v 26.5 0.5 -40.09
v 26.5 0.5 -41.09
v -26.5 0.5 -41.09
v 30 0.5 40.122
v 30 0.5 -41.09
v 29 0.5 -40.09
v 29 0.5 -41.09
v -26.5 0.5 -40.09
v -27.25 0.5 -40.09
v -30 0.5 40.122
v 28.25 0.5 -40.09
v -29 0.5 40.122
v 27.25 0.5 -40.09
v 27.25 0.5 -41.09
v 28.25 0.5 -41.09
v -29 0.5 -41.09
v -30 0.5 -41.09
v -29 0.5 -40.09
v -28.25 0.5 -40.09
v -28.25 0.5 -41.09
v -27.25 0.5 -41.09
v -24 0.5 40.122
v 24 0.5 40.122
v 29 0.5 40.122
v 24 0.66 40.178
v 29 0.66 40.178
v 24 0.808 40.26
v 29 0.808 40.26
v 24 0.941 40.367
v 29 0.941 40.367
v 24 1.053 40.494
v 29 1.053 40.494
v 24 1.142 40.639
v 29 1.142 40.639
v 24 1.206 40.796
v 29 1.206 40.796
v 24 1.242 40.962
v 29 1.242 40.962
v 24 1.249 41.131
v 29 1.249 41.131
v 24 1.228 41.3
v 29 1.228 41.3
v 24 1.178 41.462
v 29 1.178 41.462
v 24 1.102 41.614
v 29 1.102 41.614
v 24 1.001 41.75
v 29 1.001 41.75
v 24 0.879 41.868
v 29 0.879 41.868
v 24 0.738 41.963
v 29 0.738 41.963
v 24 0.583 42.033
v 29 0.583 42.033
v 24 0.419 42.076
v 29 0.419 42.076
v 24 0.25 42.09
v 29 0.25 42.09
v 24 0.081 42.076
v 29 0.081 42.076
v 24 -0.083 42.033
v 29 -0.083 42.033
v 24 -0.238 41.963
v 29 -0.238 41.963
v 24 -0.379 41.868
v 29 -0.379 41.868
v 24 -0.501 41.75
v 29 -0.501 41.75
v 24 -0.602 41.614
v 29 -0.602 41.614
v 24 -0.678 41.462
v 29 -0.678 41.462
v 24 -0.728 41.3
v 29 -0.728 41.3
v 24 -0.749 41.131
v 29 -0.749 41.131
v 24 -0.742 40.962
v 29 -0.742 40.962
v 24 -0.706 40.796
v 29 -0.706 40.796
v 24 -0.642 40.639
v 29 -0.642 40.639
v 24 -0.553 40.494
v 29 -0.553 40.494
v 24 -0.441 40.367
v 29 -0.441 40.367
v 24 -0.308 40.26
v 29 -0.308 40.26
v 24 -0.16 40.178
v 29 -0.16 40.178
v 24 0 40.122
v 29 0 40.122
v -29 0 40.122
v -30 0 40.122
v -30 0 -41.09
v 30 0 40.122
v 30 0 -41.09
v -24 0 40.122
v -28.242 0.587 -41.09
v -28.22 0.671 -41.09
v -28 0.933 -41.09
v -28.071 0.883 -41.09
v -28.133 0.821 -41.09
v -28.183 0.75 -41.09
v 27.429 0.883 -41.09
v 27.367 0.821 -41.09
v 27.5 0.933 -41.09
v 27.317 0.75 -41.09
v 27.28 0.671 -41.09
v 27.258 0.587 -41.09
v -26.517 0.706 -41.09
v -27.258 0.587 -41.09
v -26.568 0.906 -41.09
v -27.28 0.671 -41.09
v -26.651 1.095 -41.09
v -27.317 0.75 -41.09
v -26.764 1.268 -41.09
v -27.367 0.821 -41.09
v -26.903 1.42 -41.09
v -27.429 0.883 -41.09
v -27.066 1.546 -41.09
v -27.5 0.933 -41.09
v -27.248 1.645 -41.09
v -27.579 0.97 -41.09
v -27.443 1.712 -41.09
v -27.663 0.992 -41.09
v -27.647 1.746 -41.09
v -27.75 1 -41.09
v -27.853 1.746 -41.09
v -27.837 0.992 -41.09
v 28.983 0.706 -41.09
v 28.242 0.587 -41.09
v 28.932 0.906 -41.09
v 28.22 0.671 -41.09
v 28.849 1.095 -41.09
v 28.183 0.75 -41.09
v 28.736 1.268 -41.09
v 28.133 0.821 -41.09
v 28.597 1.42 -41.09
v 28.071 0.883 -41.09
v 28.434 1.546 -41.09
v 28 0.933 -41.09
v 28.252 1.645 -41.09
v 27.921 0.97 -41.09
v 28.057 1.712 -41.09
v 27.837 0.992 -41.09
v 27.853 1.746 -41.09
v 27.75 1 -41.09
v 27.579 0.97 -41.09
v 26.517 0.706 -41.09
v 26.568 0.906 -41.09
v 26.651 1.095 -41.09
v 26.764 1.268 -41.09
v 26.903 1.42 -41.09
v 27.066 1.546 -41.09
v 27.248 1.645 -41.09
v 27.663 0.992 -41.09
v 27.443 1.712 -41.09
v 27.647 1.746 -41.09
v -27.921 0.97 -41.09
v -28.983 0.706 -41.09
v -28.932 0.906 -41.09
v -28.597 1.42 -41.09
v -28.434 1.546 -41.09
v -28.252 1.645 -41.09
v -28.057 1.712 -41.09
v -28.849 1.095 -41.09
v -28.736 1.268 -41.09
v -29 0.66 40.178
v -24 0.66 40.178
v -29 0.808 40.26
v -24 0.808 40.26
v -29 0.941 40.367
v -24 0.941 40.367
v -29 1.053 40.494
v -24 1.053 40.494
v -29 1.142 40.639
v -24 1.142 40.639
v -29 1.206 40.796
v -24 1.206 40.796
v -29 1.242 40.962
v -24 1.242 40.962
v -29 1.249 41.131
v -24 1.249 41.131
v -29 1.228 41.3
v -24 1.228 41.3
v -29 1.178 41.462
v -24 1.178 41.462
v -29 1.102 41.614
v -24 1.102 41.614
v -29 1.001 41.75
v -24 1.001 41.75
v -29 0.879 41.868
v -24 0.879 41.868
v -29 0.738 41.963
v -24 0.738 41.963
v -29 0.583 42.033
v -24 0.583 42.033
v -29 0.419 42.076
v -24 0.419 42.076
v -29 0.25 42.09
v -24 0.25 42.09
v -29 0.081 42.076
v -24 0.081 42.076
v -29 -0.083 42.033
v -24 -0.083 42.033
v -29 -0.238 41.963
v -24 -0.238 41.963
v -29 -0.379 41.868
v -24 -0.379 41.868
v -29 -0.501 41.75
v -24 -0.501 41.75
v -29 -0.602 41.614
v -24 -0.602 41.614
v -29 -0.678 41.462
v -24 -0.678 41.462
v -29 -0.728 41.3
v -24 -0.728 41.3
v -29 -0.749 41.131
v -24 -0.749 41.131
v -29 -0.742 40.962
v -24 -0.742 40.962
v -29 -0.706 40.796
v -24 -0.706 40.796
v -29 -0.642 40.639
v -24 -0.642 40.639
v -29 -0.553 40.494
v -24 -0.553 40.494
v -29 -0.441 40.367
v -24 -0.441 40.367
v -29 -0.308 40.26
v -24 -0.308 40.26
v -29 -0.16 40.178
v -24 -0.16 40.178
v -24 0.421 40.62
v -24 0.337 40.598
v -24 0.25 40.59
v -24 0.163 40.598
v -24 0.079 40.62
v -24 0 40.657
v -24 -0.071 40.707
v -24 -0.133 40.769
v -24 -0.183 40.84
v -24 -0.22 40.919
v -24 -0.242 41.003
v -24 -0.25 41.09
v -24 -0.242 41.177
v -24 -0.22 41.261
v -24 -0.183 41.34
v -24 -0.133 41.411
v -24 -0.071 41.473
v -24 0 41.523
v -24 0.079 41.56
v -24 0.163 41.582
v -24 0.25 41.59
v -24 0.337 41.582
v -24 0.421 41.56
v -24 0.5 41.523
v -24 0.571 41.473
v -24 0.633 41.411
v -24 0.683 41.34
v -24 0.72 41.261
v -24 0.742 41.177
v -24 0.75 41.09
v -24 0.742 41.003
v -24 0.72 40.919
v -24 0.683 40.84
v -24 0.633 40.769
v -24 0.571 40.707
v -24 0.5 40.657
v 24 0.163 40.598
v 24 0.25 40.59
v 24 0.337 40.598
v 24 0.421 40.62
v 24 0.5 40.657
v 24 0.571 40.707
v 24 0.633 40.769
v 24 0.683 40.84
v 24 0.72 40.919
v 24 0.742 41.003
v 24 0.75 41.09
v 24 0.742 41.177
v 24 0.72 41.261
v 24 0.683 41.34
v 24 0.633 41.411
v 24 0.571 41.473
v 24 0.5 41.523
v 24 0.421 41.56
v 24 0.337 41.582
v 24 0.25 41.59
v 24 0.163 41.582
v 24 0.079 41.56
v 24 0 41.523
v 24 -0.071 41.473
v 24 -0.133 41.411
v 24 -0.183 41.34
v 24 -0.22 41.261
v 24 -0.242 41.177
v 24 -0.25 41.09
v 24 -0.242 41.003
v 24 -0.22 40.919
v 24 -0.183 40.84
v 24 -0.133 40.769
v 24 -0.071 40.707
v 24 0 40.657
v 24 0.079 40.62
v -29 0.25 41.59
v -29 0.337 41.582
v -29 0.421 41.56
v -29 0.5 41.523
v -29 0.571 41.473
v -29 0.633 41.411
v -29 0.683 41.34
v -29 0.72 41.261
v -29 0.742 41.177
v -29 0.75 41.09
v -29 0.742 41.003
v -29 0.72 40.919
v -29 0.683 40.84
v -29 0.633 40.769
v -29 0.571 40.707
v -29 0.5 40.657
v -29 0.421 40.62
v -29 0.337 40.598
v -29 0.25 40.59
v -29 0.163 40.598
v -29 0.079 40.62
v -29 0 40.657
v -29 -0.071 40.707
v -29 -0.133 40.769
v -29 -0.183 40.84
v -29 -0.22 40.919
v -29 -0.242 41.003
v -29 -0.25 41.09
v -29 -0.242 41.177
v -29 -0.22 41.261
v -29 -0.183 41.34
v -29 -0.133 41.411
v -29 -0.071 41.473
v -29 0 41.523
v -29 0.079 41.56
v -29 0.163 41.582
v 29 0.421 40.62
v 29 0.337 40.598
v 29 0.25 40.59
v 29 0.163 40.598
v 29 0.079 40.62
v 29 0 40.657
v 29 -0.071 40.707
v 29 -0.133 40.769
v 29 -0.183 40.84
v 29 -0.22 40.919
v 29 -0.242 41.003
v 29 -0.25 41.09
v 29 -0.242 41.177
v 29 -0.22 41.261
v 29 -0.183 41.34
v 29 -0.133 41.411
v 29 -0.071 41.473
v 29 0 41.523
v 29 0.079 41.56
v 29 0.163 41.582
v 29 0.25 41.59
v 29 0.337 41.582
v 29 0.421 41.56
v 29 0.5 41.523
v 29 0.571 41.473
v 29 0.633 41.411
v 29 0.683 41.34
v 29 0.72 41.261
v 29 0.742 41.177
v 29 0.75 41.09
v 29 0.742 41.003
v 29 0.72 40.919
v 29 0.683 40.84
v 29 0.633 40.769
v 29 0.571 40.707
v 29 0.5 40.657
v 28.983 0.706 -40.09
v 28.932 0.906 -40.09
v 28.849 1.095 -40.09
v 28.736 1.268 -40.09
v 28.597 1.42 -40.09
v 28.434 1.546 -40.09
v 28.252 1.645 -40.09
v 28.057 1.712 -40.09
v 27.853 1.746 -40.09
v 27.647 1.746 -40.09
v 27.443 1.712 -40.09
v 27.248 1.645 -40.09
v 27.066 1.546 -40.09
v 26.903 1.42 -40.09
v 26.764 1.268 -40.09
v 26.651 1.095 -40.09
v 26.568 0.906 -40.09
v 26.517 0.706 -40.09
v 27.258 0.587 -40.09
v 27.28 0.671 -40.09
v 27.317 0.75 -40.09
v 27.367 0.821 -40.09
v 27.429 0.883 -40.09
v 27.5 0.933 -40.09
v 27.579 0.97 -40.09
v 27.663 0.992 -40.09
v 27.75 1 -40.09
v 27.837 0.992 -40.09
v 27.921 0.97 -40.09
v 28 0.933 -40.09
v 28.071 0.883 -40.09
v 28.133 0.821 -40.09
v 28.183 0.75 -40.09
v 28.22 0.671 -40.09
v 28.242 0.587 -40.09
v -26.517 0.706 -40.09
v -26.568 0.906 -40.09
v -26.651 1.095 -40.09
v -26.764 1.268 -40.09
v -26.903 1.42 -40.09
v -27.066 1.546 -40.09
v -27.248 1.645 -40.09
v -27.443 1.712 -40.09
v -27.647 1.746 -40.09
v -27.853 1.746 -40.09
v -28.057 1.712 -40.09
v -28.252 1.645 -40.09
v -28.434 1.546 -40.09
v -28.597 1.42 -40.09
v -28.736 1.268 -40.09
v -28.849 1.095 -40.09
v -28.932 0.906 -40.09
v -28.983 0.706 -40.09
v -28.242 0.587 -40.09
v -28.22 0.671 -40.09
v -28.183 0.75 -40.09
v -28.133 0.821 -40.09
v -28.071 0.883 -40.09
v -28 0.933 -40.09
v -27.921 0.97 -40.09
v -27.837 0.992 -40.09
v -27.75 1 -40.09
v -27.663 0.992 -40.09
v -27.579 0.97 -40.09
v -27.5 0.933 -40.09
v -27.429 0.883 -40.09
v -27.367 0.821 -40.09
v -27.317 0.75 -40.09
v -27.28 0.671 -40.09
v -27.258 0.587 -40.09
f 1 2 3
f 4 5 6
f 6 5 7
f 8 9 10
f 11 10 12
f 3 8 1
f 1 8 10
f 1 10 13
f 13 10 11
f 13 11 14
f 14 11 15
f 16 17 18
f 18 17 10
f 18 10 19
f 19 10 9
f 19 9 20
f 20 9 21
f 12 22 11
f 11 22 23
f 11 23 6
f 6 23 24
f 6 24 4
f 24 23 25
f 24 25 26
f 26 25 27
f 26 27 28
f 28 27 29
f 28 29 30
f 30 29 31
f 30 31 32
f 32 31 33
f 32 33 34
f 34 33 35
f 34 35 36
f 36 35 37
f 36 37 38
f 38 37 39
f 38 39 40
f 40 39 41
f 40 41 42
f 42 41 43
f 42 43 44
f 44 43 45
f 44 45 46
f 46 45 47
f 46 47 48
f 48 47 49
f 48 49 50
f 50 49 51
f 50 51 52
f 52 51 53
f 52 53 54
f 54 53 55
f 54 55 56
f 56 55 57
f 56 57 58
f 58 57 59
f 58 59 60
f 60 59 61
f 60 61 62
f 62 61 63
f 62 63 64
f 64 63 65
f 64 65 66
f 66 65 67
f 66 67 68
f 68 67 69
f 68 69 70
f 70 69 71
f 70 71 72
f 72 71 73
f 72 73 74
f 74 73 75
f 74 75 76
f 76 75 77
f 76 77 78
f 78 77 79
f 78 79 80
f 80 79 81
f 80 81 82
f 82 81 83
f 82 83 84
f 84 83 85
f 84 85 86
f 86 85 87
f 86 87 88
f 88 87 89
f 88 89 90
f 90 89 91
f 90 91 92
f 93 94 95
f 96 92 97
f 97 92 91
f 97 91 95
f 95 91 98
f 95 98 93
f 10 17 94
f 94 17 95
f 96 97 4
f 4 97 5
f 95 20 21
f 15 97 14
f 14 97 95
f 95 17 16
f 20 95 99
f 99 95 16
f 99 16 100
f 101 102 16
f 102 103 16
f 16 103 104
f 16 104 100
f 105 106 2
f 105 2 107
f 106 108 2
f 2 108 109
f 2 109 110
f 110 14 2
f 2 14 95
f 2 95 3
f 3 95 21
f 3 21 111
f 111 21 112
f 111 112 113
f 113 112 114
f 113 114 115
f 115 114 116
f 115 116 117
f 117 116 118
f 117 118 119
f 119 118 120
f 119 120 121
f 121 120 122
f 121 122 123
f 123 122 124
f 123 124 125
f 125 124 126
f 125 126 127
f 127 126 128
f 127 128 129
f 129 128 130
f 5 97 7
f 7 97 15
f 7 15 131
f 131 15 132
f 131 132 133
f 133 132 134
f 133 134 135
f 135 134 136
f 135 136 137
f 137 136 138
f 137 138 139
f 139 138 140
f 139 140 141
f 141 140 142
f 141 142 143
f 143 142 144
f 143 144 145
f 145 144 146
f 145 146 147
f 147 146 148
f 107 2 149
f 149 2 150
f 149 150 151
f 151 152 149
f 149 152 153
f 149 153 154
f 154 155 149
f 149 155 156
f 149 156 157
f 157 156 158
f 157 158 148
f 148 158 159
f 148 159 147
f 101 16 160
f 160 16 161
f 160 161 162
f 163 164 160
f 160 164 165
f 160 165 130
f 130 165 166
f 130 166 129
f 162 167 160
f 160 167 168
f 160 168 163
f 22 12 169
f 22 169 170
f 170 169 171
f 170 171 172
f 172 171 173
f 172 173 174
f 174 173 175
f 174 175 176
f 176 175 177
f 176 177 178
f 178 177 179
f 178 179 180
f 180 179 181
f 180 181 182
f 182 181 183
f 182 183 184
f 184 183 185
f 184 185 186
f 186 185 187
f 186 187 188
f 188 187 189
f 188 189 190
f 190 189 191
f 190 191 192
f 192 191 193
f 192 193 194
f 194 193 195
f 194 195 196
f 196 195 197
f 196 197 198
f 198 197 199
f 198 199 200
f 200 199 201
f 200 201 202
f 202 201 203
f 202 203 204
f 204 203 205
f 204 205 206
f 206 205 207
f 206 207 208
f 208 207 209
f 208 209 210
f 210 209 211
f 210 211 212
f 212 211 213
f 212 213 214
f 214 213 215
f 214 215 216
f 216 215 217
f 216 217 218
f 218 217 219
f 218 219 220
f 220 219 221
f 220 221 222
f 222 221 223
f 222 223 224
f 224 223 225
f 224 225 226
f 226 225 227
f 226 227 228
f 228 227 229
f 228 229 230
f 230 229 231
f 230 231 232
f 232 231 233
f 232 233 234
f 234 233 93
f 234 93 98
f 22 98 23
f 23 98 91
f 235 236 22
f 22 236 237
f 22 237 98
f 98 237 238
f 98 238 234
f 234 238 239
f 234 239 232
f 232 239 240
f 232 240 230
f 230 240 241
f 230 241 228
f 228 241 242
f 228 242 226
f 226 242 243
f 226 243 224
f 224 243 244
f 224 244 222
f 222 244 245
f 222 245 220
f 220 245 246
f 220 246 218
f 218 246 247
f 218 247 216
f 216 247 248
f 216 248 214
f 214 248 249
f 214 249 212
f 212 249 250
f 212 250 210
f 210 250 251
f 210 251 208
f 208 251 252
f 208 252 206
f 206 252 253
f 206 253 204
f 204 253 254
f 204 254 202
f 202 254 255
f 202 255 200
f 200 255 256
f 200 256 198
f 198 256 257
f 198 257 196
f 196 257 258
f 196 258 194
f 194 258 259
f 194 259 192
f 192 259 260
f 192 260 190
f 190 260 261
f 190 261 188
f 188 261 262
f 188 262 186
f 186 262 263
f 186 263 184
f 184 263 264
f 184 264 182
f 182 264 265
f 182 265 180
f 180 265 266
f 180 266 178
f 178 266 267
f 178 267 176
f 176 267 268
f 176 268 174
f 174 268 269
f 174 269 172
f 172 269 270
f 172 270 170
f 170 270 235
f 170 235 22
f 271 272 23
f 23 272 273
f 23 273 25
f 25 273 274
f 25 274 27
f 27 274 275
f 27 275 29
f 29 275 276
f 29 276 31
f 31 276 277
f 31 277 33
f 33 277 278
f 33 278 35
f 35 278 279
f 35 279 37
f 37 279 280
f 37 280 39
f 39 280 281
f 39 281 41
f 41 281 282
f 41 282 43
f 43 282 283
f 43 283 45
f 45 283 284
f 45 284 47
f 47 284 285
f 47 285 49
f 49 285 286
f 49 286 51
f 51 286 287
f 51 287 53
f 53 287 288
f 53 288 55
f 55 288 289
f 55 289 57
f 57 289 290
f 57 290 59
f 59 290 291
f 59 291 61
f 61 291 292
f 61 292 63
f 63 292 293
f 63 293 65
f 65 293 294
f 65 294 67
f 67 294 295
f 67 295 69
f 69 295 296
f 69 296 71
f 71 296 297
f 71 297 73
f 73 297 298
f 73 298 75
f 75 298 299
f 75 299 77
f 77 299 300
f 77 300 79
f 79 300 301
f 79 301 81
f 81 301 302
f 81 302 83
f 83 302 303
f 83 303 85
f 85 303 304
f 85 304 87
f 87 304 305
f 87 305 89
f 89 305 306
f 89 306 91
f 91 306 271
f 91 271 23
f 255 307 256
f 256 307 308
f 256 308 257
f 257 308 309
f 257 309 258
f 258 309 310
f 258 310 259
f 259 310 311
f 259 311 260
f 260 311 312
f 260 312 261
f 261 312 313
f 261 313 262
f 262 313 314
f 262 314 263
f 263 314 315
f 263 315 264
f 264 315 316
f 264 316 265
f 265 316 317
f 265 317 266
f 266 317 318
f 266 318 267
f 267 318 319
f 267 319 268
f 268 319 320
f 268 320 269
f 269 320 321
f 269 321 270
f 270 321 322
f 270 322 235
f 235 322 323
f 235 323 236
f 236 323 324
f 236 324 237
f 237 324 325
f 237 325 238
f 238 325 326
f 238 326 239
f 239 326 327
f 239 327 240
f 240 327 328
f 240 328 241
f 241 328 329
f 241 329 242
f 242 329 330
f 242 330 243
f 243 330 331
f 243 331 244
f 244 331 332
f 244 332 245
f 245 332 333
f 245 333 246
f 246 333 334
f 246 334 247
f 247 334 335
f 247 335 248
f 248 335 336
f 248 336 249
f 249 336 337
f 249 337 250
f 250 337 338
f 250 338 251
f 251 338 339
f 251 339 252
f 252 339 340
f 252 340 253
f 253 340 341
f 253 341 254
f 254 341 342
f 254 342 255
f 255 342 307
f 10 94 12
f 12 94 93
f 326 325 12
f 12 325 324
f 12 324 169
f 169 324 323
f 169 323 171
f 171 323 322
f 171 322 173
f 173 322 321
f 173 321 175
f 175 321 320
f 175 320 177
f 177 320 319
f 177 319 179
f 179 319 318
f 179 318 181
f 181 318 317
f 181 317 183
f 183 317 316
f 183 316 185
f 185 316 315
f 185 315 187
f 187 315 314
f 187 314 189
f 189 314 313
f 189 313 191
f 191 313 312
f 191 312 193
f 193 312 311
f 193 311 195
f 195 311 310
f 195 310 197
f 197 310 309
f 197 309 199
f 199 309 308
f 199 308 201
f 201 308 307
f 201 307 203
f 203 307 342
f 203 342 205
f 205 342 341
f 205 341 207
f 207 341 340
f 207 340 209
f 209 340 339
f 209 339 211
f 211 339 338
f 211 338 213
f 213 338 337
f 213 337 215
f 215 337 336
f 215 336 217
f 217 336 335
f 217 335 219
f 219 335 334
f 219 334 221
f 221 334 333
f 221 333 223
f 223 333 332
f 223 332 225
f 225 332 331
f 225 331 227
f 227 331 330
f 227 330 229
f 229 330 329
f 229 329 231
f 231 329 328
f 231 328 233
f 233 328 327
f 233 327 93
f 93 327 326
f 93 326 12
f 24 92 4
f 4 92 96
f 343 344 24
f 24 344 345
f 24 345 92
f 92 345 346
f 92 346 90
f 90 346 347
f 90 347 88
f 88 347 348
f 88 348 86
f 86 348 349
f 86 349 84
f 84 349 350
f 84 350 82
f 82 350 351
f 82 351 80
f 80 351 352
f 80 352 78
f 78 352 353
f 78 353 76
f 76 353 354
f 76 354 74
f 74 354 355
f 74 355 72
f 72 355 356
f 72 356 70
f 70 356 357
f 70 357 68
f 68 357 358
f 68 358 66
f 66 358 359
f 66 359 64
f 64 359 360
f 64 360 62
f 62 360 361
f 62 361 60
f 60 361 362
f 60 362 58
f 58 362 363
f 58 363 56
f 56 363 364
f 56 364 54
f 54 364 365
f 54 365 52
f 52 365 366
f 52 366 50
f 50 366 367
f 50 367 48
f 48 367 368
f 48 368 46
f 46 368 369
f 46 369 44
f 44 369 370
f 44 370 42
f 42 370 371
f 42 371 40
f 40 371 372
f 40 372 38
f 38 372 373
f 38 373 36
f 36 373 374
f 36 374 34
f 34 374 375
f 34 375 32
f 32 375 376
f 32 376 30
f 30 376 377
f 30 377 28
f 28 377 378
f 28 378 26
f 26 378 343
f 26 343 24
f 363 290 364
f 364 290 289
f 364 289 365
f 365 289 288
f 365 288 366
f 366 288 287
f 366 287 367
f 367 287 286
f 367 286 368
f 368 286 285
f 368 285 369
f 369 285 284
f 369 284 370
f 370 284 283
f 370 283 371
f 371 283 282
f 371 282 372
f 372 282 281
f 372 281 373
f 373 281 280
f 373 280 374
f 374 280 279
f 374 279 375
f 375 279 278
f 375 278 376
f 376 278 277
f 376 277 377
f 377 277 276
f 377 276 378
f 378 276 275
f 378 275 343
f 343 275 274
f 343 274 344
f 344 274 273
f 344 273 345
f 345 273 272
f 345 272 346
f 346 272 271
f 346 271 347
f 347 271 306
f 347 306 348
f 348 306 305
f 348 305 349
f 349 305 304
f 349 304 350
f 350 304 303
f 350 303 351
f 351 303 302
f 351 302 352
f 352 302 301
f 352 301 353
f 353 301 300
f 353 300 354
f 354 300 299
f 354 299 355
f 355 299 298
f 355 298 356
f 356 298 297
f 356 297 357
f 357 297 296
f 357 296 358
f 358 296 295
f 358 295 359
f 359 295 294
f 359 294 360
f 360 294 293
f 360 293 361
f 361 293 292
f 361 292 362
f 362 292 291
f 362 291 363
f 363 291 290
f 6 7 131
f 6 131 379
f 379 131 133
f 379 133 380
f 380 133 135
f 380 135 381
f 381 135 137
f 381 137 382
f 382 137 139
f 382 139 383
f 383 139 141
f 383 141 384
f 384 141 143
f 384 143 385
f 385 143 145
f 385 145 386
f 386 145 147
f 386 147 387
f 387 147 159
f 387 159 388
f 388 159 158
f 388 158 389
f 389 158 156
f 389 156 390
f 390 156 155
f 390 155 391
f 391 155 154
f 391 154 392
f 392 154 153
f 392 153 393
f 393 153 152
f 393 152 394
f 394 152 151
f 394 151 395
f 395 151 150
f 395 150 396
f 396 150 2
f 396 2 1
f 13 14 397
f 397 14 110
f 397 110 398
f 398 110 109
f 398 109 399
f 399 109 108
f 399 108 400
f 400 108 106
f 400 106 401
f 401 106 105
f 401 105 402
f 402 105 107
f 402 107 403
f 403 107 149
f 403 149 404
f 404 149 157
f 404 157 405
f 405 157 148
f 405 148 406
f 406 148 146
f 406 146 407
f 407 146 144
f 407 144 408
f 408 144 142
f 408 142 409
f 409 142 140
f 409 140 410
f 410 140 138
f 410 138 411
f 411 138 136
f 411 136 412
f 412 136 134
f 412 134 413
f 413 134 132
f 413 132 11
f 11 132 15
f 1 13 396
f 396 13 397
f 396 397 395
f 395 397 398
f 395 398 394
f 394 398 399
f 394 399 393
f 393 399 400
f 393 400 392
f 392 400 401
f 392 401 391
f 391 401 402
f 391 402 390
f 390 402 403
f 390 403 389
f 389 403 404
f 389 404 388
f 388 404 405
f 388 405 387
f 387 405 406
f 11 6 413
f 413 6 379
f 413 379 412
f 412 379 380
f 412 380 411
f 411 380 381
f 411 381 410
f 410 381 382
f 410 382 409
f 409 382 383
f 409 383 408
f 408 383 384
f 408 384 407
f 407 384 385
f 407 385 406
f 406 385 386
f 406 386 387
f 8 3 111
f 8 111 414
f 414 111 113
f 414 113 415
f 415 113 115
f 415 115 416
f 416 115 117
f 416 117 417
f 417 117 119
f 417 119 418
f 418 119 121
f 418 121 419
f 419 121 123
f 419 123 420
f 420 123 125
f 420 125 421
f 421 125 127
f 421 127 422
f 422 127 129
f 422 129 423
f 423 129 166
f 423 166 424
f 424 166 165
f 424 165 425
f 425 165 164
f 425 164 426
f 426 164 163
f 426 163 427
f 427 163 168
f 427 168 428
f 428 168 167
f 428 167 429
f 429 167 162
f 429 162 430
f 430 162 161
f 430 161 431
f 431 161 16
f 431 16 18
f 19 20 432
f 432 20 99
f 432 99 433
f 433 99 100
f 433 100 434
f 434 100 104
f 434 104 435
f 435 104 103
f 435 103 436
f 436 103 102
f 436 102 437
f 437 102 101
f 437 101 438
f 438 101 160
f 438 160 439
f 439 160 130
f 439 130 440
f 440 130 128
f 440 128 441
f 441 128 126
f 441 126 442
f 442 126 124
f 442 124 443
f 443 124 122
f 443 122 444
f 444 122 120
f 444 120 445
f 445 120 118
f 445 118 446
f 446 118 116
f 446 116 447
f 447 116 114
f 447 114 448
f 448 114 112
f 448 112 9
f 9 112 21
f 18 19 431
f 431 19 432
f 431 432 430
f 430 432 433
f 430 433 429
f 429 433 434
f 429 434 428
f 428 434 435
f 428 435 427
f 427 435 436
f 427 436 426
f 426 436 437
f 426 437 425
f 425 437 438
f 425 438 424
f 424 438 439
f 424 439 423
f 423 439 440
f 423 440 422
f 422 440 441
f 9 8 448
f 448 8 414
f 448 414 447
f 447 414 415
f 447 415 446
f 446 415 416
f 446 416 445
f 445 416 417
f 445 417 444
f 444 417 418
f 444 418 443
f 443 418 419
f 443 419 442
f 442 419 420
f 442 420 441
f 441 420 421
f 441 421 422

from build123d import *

# Parameters (mm, degrees)
SKETCH1_W                       = 60
SKETCH1_H                       = 82.18
BOSS_EXTRUDE1_DEPTH             = 0.5
BOSS_EXTRUDE2_REACH             = 32
SKETCH3_R                       = 1
SKETCH3_R_2                     = 0.5
BOSS_EXTRUDE2_DIRECTION_2_REACH = 32
SKETCH4_R                       = 0.5
CUT_EXTRUDE1_DEPTH              = 61
SKETCH5_W                       = 48
SKETCH5_H                       = 1.968245837
SKETCH5_W_2                     = 1
CUT_EXTRUDE2_DEPTH              = 1.75
CUT_EXTRUDE2_DEPTH_BACK         = 2.25
BOSS_EXTRUDE3_DEPTH             = 1


with BuildPart() as part:
    # Sketch1 → Boss-Extrude1 (new body)
    with BuildSketch(Plane(origin=(0, 0, 0), x_dir=(1, 0, 0), z_dir=(0, 1, 0))):
        Rectangle(SKETCH1_W, SKETCH1_H)
    extrude(amount=BOSS_EXTRUDE1_DEPTH)

    # Boss-Extrude2: up to this face of the body (flat: up to its plane)
    boss_extrude2_end = Plane(part.part.faces().sort_by_distance((30, 0.25, 0))[0])
    # Sketch3 → Boss-Extrude2 (add, up to the picked face)
    with BuildSketch(Plane(origin=(0, 0, 0), x_dir=(0, 0, -1), z_dir=(1, 0, 0)), mode=Mode.PRIVATE) as boss_extrude2_sk1:
        with Locations((-41.09, 0.25)):
            Circle(SKETCH3_R)
        with Locations((-41.09, 0.25)):
            Circle(SKETCH3_R_2, mode=Mode.SUBTRACT)
    boss_extrude2_tool1 = split(extrude(boss_extrude2_sk1.sketch, amount=BOSS_EXTRUDE2_REACH, mode=Mode.PRIVATE), bisect_by=boss_extrude2_end, keep=Keep.BOTH, mode=Mode.PRIVATE)
    add(boss_extrude2_tool1.solids().sort_by_distance((0, 0.25, 42.061716))[0])

    # Boss-Extrude2 direction 2: up to this face of the body (flat: up to its plane)
    boss_extrude2_direction_2_end = Plane(part.part.faces().sort_by_distance((-30, 0.25, 0))[0])
    # Sketch3 → Boss-Extrude2 direction 2 (add, up to the picked face)
    with BuildSketch(Plane(origin=(0, 0, 0), x_dir=(0, 0, -1), z_dir=(1, 0, 0)), mode=Mode.PRIVATE) as boss_extrude2_direction_2_sk1:
        with Locations((-41.09, 0.25)):
            Circle(SKETCH3_R)
        with Locations((-41.09, 0.25)):
            Circle(SKETCH3_R_2, mode=Mode.SUBTRACT)
    boss_extrude2_direction_2_tool1 = split(extrude(boss_extrude2_direction_2_sk1.sketch, amount=-BOSS_EXTRUDE2_DIRECTION_2_REACH, mode=Mode.PRIVATE), bisect_by=boss_extrude2_direction_2_end, keep=Keep.BOTH, mode=Mode.PRIVATE)
    add(boss_extrude2_direction_2_tool1.solids().sort_by_distance((0, 0.25, 42.061716))[0])

    # Sketch4 → Cut-Extrude1 (cut, through all)
    with BuildSketch(Plane.ZY.offset(30)):
        with Locations((41.09, 0.25)):
            Circle(SKETCH4_R)
    extrude(amount=-CUT_EXTRUDE1_DEPTH, mode=Mode.SUBTRACT)

    # Sketch5 → Cut-Extrude2 (cut, two sides)
    with BuildSketch(Plane(origin=(0, 0.5, 0), x_dir=(1, 0, 0), z_dir=(0, 1, 0))) as cut_extrude2_sk:
        with Locations((0, -41.105877082)):
            Rectangle(SKETCH5_W, SKETCH5_H)
        with Locations((-29.5, -41.105877082)):
            Rectangle(SKETCH5_W_2, SKETCH5_H)
        with Locations((29.5, -41.105877082)):
            Rectangle(SKETCH5_W_2, SKETCH5_H)
    extrude(amount=CUT_EXTRUDE2_DEPTH, mode=Mode.SUBTRACT)
    extrude(cut_extrude2_sk.sketch, amount=-CUT_EXTRUDE2_DEPTH_BACK, mode=Mode.SUBTRACT)

    # Sketch7 → Boss-Extrude3 (add)
    with BuildSketch(Plane(origin=(0, 0, -41.09), x_dir=(-1, 0, 0), z_dir=(0, 0, -1))):
        with BuildLine():
            Line((-29, 0.5), (-28.25, 0.5))
            ThreePointArc((-28.25, 0.5), (-27.75, 1), (-27.25, 0.5))
            Line((-27.25, 0.5), (-26.5, 0.5))
            ThreePointArc((-26.5, 0.5), (-27.75, 1.75), (-29, 0.5))
        make_face()
    boss_extrude3 = extrude(amount=-BOSS_EXTRUDE3_DEPTH)

    # Mirror1: Boss-Extrude3 across plane
    add(boss_extrude3.mirror(Plane(origin=(0, 0, 0), x_dir=(0, 0, 1), z_dir=(1, 0, 0))))


solid = part.part
